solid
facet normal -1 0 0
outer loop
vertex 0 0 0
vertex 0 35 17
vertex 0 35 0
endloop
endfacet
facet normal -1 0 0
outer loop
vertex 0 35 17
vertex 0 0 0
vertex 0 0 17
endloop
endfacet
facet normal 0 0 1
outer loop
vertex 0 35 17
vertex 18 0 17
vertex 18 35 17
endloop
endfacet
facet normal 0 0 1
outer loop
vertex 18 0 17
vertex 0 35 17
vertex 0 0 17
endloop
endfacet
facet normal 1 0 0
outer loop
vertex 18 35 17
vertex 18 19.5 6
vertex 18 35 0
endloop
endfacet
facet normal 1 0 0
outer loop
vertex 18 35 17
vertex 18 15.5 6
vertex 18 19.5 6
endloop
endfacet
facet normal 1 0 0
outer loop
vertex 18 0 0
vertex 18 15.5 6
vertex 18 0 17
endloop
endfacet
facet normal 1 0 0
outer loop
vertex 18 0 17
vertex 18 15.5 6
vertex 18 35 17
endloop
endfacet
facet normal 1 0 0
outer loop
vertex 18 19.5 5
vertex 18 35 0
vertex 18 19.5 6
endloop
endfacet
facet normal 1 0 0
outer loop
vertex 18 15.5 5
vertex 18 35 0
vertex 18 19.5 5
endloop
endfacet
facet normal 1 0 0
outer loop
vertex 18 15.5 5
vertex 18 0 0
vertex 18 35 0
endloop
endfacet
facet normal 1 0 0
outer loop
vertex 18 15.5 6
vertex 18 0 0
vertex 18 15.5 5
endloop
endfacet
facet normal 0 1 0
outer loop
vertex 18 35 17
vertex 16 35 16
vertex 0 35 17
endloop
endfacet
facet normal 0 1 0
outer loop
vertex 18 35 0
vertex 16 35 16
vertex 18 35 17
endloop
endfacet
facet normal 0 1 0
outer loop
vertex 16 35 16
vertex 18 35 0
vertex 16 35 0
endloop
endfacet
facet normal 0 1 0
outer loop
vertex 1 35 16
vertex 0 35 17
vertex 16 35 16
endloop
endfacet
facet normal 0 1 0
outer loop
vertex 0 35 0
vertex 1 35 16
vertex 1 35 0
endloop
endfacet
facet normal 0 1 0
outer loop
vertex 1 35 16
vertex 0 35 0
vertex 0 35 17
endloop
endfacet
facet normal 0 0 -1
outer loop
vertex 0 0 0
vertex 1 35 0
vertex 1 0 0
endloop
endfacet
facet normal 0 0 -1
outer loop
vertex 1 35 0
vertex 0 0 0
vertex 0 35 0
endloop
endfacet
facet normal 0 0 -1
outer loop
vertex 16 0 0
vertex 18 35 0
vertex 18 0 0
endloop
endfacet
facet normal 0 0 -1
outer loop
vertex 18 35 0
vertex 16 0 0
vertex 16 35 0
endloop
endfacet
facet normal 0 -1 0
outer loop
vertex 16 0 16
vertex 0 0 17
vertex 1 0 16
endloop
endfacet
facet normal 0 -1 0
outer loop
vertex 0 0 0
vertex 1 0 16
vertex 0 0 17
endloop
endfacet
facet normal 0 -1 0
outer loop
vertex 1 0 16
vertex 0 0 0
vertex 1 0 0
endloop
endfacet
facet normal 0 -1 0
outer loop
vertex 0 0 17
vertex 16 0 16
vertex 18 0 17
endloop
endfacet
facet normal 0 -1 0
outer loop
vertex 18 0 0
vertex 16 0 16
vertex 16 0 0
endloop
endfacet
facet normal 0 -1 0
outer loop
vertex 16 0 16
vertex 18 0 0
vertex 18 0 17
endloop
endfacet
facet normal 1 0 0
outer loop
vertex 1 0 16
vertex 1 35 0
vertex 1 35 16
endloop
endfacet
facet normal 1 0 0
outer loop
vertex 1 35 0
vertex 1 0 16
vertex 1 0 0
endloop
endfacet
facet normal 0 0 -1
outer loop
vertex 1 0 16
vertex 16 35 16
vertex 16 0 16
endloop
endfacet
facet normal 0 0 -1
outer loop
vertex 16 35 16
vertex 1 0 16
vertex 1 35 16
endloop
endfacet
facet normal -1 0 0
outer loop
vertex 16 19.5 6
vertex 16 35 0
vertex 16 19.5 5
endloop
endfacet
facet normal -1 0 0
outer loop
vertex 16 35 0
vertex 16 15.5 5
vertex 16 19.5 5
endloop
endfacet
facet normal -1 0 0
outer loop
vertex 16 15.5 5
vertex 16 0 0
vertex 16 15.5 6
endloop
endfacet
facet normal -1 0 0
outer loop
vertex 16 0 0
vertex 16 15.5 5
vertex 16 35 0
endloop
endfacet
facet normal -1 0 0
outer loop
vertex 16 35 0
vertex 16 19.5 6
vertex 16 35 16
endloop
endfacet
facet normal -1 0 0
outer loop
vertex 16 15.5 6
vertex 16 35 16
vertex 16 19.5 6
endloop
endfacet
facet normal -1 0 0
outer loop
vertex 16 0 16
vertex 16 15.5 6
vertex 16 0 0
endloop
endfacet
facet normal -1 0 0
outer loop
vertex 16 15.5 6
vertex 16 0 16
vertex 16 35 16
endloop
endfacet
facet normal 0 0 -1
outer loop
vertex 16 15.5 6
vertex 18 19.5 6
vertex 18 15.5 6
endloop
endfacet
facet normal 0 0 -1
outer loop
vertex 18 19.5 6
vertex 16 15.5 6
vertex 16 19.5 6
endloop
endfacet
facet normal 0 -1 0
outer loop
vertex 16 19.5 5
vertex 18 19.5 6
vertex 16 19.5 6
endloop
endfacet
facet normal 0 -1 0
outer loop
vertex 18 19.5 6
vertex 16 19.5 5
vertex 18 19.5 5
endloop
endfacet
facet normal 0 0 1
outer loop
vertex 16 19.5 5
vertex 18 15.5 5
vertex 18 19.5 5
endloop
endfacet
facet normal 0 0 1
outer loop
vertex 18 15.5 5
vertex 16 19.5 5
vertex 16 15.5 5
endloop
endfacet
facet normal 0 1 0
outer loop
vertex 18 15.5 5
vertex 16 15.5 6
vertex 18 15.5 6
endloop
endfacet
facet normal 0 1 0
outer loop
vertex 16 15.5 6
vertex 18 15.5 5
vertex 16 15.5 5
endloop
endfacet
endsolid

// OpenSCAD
width = 35;
height = 16;
depth = 15;
thickness = 3;
difference() {
    cube([depth + thickness,width,height + 1]);
    translate([1,0,0]) {
        cube([depth,width,height]);
    }
    width_2 = 4;
    translate([depth,width/2 - width_2/2,5]) {
        cube([thickness,width_2,1]);
    }
}
